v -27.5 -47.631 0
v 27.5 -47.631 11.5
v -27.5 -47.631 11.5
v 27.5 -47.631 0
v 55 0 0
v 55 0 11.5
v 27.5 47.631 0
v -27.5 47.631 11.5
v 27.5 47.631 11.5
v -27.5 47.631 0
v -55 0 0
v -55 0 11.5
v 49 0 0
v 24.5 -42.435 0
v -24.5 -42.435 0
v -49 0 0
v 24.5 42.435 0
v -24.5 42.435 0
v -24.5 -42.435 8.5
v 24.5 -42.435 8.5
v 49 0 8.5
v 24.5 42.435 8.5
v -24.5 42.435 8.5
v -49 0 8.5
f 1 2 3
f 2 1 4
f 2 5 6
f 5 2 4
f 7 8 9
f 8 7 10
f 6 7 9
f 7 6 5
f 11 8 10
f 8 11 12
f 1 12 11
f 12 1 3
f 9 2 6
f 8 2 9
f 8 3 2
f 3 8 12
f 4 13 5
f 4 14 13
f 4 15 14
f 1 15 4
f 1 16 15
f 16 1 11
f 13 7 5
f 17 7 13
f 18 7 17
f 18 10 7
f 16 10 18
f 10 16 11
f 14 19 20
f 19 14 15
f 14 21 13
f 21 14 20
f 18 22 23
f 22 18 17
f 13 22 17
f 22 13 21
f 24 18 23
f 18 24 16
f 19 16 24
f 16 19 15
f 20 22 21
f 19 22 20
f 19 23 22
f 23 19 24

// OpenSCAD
// 基礎部分
// module plank(rotate_x, rotate_y, rotate_z){
// 
// 	rotate([rotate_x, rotate_y, rotate_z]){
// 
// 		// 厚みを10mmに設定
// 		linear_extrude(10){
// 
// 			polygon(points=[[0, 0], [0, 10], [8, 40], [13, 40], [13, 10], [28, 10], [28, 40], [33, 40], [40, 10], [40, 0]]); //時計回り
// 
// 		}
// 	
// 	}
// 
// }
// 
// color("red")
// plank(90, 0, 0);
// 
// // x方向に80mm,y軸方向に-100mm移動
// translate([0, 100, 0]){
// 
// 	plank(90, 0, 0);
// 
// }
// 
// translate([13, 0, 0]){
// 
// 	cube([15, 100, 10]);
// 
// }
difference() {

	cylinder(h=8.5+3, d=110, $fn=6);
	cylinder(h=8.5, d=98, $fn=6);

}
